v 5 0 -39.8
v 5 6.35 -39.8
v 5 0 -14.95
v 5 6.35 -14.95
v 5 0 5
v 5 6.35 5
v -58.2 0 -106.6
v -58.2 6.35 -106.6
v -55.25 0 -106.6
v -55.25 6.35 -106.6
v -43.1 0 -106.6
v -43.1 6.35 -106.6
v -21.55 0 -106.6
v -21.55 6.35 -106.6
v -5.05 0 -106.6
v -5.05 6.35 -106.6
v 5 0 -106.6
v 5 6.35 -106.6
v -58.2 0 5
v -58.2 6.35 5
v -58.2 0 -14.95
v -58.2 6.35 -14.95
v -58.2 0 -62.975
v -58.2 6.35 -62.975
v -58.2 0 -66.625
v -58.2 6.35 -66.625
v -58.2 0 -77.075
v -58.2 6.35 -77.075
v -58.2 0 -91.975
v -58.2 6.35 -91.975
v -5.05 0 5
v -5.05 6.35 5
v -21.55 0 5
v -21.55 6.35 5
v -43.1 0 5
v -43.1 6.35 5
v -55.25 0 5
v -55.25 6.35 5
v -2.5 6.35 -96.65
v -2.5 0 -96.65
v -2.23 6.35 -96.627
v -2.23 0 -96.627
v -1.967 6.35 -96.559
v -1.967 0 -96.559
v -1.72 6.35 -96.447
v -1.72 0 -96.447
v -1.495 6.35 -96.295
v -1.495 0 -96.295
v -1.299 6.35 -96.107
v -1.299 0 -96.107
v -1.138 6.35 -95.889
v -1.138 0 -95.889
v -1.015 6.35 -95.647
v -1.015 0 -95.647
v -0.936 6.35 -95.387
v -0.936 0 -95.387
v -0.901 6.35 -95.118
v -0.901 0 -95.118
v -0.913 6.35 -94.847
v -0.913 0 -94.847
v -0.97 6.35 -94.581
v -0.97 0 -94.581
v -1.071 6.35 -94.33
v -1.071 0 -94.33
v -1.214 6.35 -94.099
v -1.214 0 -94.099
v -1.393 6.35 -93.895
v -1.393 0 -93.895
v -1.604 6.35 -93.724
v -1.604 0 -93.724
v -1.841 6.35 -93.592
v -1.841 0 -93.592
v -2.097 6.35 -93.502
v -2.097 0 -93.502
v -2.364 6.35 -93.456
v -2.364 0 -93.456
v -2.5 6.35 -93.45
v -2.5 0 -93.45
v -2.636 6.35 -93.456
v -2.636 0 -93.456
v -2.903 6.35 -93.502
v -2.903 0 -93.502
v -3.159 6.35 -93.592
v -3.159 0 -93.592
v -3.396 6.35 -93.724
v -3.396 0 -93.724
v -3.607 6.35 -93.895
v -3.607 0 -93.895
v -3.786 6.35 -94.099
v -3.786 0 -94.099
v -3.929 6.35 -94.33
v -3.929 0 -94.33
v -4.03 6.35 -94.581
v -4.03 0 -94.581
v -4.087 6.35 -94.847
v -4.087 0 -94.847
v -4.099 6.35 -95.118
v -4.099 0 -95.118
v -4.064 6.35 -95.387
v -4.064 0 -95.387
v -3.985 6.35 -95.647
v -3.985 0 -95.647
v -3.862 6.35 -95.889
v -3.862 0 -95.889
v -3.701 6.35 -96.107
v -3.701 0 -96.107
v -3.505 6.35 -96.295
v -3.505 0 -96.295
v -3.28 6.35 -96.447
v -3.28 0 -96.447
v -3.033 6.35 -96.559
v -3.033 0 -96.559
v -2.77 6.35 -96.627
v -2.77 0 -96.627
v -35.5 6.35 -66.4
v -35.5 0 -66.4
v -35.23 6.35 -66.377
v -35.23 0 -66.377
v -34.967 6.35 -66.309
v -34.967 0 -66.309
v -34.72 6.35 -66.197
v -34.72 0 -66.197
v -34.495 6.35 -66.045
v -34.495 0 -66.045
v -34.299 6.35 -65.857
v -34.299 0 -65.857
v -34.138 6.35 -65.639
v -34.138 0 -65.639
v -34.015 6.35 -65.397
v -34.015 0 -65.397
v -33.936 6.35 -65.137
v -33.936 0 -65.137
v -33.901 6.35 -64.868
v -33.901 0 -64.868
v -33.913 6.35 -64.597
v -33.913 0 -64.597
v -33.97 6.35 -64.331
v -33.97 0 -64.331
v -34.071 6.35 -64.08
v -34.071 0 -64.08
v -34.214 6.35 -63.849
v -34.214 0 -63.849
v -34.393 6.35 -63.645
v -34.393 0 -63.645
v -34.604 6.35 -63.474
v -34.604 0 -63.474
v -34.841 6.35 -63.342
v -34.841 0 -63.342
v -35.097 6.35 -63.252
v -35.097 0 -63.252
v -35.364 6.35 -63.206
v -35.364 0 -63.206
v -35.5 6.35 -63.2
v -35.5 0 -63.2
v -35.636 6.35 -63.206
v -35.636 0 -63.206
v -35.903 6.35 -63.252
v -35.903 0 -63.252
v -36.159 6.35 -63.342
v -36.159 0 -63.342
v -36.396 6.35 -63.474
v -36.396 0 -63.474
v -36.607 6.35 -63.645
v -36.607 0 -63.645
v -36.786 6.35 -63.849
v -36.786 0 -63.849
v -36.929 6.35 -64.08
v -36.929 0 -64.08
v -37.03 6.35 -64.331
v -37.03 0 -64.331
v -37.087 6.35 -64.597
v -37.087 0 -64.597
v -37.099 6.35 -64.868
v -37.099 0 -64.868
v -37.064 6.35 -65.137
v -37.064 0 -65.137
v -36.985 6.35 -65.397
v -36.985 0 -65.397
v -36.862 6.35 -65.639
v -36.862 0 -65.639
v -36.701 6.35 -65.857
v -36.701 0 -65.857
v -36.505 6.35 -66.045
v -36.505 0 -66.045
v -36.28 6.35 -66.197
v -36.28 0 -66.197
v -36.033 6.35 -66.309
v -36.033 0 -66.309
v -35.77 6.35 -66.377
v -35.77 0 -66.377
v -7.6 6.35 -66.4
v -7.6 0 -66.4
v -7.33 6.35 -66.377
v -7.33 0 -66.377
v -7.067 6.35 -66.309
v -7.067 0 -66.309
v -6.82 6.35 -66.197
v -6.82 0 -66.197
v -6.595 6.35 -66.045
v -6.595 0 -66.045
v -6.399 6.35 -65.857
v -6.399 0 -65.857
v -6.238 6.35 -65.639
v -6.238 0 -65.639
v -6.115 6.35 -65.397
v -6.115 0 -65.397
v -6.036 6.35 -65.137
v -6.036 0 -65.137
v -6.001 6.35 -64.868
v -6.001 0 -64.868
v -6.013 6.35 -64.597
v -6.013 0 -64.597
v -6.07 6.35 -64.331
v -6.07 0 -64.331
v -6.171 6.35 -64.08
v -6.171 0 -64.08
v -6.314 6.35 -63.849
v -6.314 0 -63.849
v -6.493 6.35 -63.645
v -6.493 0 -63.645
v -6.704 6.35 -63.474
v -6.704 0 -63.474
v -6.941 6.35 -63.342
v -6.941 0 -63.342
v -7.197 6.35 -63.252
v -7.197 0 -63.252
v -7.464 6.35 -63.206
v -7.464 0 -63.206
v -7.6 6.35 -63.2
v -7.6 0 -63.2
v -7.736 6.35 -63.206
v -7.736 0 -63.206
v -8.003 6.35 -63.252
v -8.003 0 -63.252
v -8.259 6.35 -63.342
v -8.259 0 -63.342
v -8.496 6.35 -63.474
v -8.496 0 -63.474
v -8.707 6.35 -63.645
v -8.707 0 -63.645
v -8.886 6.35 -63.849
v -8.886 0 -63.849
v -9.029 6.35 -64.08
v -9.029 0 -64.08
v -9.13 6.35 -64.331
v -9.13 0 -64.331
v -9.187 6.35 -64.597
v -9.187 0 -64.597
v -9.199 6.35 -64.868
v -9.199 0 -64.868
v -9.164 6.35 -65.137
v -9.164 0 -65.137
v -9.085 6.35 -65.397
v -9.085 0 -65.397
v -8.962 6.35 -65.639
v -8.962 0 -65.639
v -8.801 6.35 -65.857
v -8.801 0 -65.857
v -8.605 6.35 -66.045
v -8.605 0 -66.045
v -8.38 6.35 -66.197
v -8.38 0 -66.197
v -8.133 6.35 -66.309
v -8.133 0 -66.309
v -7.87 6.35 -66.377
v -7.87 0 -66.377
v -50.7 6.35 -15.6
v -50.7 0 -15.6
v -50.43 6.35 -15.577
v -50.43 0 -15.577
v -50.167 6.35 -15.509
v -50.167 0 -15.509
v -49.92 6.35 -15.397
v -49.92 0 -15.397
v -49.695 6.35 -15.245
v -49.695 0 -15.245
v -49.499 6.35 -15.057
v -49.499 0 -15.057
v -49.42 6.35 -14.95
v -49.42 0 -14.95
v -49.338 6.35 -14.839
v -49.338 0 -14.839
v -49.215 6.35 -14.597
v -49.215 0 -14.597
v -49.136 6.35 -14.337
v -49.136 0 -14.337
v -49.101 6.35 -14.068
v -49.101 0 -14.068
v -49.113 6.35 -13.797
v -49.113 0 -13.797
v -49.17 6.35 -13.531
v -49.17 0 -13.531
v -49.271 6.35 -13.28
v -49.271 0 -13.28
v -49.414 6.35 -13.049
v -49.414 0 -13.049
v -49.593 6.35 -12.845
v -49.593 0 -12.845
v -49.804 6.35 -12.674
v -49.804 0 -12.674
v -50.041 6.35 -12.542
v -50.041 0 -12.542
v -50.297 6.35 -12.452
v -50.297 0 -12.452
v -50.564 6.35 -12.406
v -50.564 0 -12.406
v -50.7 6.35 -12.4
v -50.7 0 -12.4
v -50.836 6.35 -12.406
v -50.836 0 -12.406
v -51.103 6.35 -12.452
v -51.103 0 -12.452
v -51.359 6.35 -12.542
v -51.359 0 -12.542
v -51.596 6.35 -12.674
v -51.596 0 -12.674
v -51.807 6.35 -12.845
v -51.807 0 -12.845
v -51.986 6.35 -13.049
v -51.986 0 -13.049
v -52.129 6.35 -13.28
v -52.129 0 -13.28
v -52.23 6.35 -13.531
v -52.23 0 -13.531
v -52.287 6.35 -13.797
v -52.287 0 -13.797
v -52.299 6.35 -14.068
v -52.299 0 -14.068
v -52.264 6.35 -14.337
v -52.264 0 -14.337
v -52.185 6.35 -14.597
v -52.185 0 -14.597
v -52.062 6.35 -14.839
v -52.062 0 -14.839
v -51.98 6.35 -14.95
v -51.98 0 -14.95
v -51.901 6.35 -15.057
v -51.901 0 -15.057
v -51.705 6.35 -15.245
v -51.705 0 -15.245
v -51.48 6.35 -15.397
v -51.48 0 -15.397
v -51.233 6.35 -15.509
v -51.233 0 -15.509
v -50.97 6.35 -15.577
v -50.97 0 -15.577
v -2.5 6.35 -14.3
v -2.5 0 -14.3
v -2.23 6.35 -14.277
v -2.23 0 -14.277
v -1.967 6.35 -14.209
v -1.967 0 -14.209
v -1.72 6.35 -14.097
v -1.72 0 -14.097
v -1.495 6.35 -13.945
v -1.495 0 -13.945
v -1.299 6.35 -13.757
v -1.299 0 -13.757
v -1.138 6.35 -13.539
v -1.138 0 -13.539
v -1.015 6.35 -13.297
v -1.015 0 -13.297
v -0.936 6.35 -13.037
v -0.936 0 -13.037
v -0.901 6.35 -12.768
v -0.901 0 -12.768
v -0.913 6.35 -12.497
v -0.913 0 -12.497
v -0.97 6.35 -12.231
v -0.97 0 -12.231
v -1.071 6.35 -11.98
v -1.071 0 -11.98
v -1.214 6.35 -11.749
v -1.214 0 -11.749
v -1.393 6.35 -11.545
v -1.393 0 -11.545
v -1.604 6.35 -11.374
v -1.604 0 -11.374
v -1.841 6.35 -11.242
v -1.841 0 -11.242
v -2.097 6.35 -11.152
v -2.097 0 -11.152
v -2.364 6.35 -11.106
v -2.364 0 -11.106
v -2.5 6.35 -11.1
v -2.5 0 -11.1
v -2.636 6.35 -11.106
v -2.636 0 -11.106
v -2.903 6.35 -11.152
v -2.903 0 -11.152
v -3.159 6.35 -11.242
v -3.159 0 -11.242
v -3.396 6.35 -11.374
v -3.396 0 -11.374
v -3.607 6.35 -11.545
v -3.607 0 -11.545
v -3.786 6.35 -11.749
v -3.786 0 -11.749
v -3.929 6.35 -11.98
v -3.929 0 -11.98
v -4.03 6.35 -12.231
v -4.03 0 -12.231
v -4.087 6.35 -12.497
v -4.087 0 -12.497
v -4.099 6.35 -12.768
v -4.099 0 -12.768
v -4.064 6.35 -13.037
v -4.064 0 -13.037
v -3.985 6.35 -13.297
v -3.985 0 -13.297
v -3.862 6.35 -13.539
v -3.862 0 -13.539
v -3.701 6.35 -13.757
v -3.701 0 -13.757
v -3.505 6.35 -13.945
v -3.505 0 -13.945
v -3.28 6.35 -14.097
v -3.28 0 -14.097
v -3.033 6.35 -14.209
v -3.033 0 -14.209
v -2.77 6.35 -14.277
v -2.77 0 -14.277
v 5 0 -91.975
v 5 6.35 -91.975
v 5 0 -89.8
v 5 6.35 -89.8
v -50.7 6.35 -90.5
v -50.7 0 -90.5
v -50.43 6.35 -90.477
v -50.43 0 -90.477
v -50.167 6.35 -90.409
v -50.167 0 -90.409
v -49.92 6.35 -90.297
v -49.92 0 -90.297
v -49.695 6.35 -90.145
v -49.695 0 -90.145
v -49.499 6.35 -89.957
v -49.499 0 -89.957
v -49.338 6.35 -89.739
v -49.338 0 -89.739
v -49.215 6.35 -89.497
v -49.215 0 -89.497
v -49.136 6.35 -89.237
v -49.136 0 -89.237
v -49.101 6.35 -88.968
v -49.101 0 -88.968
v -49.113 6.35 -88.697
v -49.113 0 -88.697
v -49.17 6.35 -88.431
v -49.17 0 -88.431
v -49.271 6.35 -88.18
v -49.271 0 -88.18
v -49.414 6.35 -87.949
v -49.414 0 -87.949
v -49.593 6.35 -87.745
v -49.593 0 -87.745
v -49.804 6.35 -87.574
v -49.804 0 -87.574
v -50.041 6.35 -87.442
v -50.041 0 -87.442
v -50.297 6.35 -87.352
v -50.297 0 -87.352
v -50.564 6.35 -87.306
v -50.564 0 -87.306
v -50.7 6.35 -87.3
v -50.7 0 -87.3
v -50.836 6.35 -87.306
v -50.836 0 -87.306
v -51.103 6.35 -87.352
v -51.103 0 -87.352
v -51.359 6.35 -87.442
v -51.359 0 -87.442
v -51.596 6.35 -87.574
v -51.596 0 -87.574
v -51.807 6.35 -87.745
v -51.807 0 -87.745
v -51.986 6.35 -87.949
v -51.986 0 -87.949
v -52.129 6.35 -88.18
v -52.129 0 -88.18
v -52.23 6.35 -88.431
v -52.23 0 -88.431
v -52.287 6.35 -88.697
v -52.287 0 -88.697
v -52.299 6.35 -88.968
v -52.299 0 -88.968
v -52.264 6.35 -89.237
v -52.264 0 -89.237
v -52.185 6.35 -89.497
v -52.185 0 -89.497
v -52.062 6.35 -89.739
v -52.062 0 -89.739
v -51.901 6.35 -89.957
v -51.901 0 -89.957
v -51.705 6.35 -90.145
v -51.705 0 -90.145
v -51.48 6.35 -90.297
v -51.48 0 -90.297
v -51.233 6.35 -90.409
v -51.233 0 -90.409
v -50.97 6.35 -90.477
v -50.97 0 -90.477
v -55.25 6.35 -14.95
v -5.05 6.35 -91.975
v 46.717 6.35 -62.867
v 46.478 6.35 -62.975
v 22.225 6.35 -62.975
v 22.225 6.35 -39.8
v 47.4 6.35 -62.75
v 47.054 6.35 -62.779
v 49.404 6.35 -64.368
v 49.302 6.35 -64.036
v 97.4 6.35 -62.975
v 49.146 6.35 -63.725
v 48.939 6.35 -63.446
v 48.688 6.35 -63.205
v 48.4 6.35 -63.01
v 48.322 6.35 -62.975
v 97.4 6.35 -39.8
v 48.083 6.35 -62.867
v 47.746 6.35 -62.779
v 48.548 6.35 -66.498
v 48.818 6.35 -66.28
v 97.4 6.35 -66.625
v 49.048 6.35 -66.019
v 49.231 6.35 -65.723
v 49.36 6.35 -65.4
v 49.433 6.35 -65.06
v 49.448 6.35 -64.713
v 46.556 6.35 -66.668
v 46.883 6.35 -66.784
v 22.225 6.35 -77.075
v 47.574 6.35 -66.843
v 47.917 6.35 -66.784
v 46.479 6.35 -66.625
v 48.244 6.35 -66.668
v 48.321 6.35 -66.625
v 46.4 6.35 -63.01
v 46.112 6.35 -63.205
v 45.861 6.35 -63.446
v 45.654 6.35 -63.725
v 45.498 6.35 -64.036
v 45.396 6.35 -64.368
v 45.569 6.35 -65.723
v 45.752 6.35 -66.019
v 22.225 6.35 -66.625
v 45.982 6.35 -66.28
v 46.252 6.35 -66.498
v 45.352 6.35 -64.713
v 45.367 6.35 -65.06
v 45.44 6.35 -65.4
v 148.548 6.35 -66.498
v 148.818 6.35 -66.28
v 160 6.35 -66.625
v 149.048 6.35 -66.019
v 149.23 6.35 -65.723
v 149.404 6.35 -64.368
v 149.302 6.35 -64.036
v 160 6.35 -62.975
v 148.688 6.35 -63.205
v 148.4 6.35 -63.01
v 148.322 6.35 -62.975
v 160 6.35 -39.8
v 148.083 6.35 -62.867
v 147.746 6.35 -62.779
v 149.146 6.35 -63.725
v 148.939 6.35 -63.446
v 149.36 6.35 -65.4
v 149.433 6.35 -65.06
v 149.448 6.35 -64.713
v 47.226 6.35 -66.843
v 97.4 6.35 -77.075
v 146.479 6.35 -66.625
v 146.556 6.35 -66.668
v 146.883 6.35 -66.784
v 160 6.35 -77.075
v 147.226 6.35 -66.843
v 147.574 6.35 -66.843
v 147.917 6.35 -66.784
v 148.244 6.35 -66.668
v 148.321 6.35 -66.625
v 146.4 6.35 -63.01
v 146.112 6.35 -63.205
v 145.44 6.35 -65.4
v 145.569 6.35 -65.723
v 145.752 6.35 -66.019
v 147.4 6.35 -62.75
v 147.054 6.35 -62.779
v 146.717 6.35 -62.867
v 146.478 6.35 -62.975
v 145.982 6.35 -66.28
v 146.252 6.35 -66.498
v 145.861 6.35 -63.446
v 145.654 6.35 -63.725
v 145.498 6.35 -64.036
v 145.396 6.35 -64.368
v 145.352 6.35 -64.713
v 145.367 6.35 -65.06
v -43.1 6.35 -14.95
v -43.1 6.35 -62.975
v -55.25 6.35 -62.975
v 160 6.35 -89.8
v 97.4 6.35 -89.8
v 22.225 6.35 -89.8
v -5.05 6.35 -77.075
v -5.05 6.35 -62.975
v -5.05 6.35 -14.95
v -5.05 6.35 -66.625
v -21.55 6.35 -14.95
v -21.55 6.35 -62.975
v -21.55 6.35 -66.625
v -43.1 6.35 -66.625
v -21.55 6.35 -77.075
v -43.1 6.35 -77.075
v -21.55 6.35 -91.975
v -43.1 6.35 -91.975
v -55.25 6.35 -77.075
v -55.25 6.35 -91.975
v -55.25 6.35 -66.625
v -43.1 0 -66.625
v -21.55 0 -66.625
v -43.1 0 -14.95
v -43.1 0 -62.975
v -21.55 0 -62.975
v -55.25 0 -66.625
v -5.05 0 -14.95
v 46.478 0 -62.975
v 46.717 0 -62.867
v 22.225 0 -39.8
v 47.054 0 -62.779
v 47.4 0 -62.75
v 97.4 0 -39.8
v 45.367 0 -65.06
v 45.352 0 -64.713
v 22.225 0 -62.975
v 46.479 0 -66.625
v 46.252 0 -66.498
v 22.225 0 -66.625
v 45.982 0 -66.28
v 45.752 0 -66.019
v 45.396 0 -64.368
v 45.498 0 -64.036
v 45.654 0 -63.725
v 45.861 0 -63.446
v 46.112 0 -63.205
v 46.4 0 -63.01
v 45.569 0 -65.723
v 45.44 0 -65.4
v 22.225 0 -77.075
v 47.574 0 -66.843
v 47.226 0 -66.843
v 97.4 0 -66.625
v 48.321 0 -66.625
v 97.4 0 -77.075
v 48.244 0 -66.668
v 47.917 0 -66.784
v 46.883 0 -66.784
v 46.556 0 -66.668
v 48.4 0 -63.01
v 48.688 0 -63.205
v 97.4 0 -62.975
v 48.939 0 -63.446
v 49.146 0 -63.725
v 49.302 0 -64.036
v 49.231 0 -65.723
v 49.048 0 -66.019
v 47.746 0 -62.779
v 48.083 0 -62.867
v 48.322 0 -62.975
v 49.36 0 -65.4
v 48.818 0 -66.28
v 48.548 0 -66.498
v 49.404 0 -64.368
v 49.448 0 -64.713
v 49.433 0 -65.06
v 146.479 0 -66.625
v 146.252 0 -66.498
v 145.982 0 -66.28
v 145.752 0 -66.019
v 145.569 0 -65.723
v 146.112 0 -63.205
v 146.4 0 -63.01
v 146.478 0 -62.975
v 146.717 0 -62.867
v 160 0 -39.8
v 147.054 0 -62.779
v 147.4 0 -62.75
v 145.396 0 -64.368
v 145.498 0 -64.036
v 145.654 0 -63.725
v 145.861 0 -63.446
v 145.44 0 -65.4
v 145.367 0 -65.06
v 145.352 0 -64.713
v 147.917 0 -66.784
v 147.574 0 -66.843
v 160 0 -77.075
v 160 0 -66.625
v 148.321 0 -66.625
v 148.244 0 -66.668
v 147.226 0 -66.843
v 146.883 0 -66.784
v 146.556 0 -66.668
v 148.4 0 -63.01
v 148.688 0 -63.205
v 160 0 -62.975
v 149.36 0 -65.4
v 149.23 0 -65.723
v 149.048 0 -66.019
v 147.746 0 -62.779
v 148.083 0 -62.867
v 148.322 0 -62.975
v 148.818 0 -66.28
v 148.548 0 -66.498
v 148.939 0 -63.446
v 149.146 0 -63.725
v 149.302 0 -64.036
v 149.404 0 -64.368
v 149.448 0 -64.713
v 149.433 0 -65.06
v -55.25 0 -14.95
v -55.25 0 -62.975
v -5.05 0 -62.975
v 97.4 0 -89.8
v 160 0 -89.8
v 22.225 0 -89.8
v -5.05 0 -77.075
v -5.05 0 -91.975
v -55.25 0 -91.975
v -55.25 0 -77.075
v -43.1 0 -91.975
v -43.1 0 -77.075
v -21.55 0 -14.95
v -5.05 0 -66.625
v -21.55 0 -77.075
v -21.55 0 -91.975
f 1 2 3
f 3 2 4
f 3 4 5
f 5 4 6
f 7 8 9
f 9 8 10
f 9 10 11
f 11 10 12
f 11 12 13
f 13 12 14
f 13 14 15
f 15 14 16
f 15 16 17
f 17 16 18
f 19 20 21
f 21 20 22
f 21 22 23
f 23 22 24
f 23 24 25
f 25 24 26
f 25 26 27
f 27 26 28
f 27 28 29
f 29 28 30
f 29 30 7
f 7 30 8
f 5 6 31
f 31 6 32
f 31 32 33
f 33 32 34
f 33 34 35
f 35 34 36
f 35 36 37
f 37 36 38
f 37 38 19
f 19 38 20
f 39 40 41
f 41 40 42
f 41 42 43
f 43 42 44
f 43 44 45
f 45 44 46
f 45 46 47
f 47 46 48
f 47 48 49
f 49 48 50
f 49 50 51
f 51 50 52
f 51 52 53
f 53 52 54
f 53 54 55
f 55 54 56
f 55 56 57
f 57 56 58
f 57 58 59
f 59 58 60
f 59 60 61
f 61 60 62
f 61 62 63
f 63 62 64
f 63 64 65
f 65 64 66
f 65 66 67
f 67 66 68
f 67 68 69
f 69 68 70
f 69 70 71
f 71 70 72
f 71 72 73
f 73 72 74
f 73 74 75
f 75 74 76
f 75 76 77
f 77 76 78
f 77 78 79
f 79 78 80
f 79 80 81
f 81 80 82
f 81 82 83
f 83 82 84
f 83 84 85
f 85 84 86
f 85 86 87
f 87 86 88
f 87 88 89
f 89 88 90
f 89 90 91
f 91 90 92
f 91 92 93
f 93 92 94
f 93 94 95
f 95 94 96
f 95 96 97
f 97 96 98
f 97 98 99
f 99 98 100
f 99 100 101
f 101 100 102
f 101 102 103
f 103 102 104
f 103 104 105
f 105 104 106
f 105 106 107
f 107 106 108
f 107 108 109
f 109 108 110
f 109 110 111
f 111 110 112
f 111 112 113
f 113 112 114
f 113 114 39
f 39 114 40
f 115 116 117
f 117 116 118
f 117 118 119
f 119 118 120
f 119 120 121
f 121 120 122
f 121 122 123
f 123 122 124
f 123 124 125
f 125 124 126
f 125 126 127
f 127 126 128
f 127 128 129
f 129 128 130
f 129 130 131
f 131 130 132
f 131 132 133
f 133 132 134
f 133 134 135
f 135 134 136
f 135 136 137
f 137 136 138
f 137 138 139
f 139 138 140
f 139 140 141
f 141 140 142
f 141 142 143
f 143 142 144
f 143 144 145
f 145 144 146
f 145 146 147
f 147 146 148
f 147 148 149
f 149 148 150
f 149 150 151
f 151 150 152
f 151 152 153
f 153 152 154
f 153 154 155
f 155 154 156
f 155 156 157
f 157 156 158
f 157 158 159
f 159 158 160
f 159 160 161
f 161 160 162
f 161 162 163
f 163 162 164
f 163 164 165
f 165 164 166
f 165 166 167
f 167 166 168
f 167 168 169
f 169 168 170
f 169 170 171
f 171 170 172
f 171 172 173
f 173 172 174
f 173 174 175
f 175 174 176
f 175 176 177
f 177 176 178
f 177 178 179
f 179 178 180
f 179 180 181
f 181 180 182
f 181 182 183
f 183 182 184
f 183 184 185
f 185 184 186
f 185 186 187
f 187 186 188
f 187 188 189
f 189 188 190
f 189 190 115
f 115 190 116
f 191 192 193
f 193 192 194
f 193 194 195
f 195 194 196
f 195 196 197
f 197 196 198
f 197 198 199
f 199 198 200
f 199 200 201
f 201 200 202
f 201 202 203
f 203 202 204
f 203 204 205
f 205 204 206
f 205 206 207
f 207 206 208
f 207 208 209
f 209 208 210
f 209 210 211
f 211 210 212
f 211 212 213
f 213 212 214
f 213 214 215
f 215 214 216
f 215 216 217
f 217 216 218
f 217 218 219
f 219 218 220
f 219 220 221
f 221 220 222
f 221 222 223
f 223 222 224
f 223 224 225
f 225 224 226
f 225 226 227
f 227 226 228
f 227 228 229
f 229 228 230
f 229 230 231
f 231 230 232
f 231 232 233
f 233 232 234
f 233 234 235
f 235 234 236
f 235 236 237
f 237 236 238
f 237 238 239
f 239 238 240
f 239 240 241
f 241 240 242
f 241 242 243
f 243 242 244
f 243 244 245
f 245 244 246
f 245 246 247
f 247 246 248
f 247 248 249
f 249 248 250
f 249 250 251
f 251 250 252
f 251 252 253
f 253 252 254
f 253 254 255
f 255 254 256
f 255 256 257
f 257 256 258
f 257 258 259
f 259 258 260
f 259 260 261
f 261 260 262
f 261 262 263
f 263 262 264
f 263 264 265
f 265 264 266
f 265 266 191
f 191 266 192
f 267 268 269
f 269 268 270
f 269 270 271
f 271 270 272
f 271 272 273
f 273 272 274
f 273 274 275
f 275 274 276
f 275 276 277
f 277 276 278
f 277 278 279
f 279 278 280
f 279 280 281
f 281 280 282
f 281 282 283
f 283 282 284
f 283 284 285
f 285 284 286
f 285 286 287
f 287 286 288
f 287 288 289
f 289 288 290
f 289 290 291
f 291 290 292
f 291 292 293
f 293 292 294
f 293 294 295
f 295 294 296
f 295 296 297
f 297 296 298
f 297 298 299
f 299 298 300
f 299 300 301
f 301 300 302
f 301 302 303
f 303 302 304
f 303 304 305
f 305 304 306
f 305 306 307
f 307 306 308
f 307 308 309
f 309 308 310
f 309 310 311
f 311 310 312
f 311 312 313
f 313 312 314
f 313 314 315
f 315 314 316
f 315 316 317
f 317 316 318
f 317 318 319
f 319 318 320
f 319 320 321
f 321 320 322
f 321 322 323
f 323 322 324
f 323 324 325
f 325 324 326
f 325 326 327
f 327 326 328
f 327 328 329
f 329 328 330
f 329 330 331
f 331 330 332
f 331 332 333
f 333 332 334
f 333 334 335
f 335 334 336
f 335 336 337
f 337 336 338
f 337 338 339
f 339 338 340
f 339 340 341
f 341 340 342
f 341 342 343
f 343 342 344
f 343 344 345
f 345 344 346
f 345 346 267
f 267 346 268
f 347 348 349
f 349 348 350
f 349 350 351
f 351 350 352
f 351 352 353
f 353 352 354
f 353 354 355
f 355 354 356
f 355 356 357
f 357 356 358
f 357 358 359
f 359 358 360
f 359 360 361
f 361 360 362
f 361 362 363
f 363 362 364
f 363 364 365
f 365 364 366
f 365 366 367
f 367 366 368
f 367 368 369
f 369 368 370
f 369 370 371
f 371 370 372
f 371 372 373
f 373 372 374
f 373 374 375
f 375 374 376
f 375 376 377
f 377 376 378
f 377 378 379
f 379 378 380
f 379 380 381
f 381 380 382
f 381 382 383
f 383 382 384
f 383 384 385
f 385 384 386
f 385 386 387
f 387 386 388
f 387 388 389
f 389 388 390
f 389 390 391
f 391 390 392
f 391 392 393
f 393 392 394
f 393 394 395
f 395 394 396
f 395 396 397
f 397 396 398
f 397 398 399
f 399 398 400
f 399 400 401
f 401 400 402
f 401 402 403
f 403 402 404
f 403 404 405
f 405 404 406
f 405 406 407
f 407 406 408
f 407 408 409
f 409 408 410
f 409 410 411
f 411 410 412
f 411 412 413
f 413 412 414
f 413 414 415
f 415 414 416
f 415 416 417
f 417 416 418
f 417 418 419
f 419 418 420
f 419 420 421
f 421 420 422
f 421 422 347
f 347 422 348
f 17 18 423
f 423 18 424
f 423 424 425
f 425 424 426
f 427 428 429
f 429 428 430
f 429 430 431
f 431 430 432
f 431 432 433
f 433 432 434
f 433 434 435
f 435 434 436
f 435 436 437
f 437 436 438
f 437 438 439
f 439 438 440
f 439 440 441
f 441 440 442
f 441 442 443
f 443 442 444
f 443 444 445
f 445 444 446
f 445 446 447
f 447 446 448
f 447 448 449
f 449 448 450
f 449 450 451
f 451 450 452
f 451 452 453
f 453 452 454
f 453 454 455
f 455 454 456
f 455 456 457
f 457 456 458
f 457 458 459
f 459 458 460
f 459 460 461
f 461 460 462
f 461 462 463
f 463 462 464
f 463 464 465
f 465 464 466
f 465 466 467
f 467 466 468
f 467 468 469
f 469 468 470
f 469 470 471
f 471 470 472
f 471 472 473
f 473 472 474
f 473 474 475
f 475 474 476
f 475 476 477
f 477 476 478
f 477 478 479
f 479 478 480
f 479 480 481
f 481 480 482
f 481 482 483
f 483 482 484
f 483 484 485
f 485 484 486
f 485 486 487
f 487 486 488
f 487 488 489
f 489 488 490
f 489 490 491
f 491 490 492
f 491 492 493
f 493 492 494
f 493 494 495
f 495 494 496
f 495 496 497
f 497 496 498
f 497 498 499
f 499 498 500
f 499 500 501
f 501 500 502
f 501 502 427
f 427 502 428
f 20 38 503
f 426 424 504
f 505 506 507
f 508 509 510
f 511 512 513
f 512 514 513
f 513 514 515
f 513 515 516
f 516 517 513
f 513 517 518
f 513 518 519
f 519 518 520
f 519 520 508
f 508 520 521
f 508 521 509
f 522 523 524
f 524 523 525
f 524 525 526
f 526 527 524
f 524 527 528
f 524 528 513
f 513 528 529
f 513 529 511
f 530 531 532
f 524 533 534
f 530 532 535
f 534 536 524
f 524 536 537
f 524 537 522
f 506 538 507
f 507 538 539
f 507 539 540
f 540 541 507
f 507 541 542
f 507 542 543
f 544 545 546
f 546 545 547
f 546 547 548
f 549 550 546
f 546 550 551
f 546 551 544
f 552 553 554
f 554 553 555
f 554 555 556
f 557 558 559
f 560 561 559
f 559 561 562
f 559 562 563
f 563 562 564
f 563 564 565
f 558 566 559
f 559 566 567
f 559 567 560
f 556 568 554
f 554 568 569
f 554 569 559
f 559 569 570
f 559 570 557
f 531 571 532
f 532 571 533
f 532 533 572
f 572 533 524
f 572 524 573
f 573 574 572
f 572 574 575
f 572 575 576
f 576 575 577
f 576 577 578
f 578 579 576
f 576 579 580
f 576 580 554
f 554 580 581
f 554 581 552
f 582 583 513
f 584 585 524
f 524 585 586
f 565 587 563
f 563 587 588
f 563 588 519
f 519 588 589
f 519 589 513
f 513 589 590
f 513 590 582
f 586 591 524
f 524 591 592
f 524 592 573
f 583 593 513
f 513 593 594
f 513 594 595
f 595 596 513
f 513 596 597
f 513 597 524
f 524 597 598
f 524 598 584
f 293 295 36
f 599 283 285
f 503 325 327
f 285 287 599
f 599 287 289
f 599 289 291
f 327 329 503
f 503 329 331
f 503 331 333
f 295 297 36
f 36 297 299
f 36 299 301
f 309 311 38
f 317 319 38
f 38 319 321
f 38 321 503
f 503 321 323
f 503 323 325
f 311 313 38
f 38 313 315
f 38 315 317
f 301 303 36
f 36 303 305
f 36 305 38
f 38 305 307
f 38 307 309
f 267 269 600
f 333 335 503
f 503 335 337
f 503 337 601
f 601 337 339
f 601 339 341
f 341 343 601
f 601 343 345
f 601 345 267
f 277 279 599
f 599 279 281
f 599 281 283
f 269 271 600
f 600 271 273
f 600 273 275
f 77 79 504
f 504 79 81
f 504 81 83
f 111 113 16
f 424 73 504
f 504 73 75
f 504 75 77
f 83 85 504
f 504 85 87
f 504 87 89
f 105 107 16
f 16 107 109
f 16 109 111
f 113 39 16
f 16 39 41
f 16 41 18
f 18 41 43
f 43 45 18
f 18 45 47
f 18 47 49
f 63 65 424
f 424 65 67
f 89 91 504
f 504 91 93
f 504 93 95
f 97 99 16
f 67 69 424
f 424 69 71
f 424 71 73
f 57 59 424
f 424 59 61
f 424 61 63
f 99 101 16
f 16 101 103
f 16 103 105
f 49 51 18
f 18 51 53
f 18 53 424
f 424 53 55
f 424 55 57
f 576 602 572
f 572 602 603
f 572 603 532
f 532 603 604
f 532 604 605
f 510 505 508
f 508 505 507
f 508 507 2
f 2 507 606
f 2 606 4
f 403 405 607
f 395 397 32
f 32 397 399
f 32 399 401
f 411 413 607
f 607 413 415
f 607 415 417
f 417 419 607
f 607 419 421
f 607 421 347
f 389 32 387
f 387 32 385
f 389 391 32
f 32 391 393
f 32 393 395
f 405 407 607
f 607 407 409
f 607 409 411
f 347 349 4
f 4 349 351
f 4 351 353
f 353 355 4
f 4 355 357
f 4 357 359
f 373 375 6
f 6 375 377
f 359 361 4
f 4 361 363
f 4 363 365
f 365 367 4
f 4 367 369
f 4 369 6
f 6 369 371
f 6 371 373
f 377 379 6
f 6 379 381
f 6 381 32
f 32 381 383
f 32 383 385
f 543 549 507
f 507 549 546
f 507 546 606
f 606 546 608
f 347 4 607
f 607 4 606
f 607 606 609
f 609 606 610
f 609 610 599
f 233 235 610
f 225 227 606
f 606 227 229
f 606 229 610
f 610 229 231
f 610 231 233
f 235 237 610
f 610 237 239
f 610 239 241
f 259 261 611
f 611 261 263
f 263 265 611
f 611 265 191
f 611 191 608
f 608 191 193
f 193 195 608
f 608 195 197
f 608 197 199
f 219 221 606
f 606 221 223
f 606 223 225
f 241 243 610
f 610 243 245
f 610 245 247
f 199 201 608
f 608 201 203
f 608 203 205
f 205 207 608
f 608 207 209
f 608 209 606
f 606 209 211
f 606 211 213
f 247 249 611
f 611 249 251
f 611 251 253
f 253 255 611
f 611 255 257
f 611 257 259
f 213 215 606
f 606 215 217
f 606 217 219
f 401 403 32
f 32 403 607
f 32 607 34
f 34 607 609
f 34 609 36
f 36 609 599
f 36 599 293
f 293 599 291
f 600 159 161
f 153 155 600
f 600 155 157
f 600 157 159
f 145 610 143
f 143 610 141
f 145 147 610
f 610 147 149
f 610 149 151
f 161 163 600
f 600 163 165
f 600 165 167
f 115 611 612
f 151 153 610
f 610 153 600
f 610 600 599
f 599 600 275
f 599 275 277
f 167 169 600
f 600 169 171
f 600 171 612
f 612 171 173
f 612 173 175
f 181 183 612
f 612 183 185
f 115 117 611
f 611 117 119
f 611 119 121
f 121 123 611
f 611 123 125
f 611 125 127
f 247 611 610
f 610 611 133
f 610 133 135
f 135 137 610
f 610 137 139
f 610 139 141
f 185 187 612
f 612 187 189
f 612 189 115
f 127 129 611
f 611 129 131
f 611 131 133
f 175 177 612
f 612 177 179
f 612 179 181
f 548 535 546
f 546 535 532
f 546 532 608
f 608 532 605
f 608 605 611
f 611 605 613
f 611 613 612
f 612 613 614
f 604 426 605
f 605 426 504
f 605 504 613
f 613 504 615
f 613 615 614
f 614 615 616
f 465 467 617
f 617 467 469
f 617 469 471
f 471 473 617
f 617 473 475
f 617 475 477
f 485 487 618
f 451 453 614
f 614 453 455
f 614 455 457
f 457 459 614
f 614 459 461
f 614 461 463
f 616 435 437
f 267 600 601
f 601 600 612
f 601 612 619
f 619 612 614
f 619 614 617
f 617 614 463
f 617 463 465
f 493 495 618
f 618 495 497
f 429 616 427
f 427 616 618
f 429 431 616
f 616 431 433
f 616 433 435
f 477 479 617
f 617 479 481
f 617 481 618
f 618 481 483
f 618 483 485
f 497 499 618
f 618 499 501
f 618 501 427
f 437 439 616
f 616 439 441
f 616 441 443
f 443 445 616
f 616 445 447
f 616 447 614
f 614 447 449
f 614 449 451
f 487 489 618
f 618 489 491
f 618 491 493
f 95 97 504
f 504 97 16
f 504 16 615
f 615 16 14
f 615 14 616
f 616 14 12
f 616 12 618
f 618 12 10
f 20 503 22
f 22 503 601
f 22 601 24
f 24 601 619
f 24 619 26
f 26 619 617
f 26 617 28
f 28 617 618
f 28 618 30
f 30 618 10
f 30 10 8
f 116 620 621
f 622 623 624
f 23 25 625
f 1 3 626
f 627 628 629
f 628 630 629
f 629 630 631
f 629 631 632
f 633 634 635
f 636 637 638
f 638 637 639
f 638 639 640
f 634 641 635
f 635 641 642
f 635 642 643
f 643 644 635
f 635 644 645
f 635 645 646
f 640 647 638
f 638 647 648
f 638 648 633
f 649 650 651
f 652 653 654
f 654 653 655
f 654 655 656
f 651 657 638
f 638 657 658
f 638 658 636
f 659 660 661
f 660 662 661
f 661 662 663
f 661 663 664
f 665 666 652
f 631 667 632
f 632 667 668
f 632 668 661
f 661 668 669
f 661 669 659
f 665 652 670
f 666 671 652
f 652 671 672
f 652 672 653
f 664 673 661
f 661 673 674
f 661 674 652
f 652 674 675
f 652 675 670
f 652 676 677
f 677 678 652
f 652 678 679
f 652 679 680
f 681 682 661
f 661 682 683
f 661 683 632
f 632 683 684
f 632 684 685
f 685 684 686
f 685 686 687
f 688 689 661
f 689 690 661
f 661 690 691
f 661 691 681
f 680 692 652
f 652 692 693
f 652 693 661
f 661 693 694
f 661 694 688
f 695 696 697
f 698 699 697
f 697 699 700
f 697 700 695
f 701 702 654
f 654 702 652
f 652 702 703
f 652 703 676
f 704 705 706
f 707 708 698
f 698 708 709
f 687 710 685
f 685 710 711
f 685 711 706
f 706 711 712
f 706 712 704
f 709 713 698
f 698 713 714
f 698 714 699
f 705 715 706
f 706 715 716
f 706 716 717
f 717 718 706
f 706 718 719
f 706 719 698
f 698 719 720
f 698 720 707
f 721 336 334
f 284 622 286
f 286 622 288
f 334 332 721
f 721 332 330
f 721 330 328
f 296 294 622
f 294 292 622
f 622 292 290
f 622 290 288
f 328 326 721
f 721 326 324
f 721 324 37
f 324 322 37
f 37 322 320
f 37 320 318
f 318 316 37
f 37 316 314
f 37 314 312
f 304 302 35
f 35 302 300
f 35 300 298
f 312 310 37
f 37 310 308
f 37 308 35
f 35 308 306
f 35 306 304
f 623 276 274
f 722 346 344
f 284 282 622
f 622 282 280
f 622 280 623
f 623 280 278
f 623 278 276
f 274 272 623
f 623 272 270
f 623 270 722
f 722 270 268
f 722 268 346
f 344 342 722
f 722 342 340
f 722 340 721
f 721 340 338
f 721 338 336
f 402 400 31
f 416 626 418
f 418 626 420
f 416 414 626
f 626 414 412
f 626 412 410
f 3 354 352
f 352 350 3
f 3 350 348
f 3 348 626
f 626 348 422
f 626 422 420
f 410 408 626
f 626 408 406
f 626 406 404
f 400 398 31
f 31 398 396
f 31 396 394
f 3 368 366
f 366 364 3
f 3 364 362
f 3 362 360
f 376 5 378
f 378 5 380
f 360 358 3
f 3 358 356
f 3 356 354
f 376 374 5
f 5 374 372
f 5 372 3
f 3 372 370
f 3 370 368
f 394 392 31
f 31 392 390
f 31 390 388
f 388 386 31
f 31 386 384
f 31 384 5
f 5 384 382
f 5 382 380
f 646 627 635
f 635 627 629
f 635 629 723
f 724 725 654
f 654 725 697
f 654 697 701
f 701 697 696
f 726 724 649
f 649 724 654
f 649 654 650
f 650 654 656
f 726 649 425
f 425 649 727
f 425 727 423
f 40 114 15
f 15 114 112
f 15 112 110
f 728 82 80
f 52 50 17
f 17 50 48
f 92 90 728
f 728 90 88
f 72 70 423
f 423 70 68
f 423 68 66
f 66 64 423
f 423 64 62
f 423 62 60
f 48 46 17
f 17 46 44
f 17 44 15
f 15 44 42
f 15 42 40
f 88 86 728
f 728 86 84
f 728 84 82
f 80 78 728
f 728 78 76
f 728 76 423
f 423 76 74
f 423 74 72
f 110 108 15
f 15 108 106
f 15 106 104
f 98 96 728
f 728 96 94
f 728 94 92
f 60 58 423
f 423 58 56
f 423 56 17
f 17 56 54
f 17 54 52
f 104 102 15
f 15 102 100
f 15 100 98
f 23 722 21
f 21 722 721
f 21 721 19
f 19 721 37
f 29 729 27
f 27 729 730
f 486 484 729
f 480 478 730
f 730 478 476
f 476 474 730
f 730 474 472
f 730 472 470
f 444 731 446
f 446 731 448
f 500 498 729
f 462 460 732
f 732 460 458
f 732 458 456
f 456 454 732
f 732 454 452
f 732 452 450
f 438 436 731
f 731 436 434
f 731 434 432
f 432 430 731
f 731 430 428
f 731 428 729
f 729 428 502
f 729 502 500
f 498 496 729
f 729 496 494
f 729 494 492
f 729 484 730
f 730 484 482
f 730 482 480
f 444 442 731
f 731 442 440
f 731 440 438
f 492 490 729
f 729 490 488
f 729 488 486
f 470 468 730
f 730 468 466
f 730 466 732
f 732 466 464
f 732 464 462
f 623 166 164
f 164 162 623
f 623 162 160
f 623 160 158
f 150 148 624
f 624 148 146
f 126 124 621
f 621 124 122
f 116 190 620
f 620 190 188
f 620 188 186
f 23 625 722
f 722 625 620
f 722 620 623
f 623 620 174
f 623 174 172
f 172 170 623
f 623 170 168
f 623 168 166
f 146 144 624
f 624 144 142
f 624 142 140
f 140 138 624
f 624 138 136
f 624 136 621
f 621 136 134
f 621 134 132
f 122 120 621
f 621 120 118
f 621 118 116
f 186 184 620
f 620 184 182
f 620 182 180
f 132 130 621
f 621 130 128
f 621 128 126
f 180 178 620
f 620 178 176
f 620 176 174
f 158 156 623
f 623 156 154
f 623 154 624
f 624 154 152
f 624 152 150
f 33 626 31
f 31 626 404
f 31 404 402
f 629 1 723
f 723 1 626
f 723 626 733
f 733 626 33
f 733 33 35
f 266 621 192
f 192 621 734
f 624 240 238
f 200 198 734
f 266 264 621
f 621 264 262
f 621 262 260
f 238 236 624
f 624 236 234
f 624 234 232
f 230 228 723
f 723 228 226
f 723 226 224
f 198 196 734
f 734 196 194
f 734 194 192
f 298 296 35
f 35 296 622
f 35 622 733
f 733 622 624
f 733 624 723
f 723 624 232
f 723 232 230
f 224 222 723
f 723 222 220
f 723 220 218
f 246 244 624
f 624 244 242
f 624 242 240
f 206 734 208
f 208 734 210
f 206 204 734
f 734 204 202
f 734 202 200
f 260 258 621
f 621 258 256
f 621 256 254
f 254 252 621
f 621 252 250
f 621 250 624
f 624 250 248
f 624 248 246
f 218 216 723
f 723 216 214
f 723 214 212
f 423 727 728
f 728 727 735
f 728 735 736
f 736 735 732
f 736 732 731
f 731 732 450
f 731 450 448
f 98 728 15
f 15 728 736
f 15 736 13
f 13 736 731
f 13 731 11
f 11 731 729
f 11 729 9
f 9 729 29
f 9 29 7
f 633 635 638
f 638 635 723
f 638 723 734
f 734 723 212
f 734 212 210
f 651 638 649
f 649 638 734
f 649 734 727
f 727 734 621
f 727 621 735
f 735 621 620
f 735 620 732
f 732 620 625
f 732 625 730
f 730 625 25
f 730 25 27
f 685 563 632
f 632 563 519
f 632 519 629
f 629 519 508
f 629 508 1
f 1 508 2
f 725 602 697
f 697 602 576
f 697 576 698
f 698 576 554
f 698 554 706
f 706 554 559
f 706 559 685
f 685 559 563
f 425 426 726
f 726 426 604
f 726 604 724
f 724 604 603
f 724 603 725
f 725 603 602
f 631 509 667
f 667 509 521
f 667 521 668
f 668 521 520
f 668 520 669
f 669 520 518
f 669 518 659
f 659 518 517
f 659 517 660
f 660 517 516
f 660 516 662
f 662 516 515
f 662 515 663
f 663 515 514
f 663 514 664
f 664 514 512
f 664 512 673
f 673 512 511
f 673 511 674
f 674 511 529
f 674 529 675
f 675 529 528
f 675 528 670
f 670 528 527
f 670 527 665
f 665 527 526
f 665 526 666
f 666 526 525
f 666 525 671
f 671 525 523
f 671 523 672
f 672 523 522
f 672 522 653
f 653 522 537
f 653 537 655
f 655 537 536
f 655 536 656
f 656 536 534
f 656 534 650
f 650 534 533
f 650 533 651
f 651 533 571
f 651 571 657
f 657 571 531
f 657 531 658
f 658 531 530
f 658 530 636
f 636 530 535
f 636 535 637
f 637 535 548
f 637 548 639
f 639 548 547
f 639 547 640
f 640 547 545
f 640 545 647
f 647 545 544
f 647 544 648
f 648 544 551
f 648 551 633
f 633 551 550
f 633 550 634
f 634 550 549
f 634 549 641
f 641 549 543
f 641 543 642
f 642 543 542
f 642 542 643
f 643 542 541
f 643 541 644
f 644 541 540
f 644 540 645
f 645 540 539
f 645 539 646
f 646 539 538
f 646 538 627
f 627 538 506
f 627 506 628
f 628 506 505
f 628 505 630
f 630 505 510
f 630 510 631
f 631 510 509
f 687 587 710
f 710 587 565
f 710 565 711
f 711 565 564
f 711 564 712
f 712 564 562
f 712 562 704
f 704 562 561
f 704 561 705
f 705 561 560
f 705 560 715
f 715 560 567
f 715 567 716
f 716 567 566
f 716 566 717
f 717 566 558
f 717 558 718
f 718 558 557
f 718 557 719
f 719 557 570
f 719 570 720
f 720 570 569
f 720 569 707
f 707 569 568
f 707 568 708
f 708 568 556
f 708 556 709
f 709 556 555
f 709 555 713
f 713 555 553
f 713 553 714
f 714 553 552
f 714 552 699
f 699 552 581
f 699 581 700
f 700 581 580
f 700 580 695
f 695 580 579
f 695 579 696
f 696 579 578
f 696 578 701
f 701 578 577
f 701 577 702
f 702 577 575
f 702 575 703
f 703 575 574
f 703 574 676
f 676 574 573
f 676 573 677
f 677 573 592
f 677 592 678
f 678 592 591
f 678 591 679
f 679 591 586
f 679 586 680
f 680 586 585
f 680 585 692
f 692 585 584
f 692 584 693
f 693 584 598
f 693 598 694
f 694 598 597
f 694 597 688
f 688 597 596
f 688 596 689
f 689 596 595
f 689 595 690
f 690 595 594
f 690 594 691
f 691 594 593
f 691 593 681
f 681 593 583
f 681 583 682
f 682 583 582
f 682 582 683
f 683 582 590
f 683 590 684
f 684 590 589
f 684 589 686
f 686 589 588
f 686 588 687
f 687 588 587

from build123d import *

# Parameters (mm, degrees)
SKETCH1_W           = 63.2
SKETCH1_H           = 111.6
SKETCH1_W_2         = 53.2
SKETCH1_H_2         = 101.6
SKETCH1_R           = 1.6
BOSS_EXTRUDE1_DEPTH = 6.35
SKETCH2_W           = 155
SKETCH2_H           = 50
SKETCH2_R           = 2.05
BOSS_EXTRUDE2_DEPTH = 6.35


with BuildPart() as part:
    # Sketch1 → Boss-Extrude1 (new body)
    # profile 1 of 2: a face of its own
    with BuildSketch(Plane(origin=(0, 0, 0), x_dir=(1, 0, 0), z_dir=(0, 1, 0))):
        with Locations((-26.6, 50.8)):
            Rectangle(SKETCH1_W, SKETCH1_H)
        with Locations((-26.6, 50.8)):
            Rectangle(SKETCH1_W_2, SKETCH1_H_2, mode=Mode.SUBTRACT)
    # profile 2 of 2: a face of its own
    with BuildSketch(Plane(origin=(0, 0, 0), x_dir=(1, 0, 0), z_dir=(0, 1, 0))):
        with Locations((-26.6, 50.8)):
            Rectangle(SKETCH1_W_2, SKETCH1_H_2)
        with Locations(Location((-2.5, 12.7, 0), (0, 0, 270))):
            Circle(SKETCH1_R, mode=Mode.SUBTRACT)
        with Locations(Location((-50.7, 14, 0), (0, 0, 270))):
            Circle(SKETCH1_R, mode=Mode.SUBTRACT)
        with Locations(Location((-7.6, 64.8, 0), (0, 0, 270))):
            Circle(SKETCH1_R, mode=Mode.SUBTRACT)
        with Locations(Location((-35.5, 64.8, 0), (0, 0, 270))):
            Circle(SKETCH1_R, mode=Mode.SUBTRACT)
        with Locations(Location((-2.5, 95.05, 0), (0, 0, 270))):
            Circle(SKETCH1_R, mode=Mode.SUBTRACT)
        with Locations(Location((-50.7, 88.9, 0), (0, 0, 270))):
            Circle(SKETCH1_R, mode=Mode.SUBTRACT)
    extrude(amount=BOSS_EXTRUDE1_DEPTH)

    # Sketch2 → Boss-Extrude2 (add)
    with BuildSketch(Plane(origin=(0, 6.35, 0), x_dir=(1, 0, 0), z_dir=(0, 1, 0))):
        with Locations((82.5, 64.8)):
            Rectangle(SKETCH2_W, SKETCH2_H)
        with Locations(Location((47.4, 64.8, 0), (0, 0, 270))):
            Circle(SKETCH2_R, mode=Mode.SUBTRACT)
        with Locations(Location((147.4, 64.8, 0), (0, 0, 270))):
            Circle(SKETCH2_R, mode=Mode.SUBTRACT)
    extrude(amount=-BOSS_EXTRUDE2_DEPTH)


solid = part.part
